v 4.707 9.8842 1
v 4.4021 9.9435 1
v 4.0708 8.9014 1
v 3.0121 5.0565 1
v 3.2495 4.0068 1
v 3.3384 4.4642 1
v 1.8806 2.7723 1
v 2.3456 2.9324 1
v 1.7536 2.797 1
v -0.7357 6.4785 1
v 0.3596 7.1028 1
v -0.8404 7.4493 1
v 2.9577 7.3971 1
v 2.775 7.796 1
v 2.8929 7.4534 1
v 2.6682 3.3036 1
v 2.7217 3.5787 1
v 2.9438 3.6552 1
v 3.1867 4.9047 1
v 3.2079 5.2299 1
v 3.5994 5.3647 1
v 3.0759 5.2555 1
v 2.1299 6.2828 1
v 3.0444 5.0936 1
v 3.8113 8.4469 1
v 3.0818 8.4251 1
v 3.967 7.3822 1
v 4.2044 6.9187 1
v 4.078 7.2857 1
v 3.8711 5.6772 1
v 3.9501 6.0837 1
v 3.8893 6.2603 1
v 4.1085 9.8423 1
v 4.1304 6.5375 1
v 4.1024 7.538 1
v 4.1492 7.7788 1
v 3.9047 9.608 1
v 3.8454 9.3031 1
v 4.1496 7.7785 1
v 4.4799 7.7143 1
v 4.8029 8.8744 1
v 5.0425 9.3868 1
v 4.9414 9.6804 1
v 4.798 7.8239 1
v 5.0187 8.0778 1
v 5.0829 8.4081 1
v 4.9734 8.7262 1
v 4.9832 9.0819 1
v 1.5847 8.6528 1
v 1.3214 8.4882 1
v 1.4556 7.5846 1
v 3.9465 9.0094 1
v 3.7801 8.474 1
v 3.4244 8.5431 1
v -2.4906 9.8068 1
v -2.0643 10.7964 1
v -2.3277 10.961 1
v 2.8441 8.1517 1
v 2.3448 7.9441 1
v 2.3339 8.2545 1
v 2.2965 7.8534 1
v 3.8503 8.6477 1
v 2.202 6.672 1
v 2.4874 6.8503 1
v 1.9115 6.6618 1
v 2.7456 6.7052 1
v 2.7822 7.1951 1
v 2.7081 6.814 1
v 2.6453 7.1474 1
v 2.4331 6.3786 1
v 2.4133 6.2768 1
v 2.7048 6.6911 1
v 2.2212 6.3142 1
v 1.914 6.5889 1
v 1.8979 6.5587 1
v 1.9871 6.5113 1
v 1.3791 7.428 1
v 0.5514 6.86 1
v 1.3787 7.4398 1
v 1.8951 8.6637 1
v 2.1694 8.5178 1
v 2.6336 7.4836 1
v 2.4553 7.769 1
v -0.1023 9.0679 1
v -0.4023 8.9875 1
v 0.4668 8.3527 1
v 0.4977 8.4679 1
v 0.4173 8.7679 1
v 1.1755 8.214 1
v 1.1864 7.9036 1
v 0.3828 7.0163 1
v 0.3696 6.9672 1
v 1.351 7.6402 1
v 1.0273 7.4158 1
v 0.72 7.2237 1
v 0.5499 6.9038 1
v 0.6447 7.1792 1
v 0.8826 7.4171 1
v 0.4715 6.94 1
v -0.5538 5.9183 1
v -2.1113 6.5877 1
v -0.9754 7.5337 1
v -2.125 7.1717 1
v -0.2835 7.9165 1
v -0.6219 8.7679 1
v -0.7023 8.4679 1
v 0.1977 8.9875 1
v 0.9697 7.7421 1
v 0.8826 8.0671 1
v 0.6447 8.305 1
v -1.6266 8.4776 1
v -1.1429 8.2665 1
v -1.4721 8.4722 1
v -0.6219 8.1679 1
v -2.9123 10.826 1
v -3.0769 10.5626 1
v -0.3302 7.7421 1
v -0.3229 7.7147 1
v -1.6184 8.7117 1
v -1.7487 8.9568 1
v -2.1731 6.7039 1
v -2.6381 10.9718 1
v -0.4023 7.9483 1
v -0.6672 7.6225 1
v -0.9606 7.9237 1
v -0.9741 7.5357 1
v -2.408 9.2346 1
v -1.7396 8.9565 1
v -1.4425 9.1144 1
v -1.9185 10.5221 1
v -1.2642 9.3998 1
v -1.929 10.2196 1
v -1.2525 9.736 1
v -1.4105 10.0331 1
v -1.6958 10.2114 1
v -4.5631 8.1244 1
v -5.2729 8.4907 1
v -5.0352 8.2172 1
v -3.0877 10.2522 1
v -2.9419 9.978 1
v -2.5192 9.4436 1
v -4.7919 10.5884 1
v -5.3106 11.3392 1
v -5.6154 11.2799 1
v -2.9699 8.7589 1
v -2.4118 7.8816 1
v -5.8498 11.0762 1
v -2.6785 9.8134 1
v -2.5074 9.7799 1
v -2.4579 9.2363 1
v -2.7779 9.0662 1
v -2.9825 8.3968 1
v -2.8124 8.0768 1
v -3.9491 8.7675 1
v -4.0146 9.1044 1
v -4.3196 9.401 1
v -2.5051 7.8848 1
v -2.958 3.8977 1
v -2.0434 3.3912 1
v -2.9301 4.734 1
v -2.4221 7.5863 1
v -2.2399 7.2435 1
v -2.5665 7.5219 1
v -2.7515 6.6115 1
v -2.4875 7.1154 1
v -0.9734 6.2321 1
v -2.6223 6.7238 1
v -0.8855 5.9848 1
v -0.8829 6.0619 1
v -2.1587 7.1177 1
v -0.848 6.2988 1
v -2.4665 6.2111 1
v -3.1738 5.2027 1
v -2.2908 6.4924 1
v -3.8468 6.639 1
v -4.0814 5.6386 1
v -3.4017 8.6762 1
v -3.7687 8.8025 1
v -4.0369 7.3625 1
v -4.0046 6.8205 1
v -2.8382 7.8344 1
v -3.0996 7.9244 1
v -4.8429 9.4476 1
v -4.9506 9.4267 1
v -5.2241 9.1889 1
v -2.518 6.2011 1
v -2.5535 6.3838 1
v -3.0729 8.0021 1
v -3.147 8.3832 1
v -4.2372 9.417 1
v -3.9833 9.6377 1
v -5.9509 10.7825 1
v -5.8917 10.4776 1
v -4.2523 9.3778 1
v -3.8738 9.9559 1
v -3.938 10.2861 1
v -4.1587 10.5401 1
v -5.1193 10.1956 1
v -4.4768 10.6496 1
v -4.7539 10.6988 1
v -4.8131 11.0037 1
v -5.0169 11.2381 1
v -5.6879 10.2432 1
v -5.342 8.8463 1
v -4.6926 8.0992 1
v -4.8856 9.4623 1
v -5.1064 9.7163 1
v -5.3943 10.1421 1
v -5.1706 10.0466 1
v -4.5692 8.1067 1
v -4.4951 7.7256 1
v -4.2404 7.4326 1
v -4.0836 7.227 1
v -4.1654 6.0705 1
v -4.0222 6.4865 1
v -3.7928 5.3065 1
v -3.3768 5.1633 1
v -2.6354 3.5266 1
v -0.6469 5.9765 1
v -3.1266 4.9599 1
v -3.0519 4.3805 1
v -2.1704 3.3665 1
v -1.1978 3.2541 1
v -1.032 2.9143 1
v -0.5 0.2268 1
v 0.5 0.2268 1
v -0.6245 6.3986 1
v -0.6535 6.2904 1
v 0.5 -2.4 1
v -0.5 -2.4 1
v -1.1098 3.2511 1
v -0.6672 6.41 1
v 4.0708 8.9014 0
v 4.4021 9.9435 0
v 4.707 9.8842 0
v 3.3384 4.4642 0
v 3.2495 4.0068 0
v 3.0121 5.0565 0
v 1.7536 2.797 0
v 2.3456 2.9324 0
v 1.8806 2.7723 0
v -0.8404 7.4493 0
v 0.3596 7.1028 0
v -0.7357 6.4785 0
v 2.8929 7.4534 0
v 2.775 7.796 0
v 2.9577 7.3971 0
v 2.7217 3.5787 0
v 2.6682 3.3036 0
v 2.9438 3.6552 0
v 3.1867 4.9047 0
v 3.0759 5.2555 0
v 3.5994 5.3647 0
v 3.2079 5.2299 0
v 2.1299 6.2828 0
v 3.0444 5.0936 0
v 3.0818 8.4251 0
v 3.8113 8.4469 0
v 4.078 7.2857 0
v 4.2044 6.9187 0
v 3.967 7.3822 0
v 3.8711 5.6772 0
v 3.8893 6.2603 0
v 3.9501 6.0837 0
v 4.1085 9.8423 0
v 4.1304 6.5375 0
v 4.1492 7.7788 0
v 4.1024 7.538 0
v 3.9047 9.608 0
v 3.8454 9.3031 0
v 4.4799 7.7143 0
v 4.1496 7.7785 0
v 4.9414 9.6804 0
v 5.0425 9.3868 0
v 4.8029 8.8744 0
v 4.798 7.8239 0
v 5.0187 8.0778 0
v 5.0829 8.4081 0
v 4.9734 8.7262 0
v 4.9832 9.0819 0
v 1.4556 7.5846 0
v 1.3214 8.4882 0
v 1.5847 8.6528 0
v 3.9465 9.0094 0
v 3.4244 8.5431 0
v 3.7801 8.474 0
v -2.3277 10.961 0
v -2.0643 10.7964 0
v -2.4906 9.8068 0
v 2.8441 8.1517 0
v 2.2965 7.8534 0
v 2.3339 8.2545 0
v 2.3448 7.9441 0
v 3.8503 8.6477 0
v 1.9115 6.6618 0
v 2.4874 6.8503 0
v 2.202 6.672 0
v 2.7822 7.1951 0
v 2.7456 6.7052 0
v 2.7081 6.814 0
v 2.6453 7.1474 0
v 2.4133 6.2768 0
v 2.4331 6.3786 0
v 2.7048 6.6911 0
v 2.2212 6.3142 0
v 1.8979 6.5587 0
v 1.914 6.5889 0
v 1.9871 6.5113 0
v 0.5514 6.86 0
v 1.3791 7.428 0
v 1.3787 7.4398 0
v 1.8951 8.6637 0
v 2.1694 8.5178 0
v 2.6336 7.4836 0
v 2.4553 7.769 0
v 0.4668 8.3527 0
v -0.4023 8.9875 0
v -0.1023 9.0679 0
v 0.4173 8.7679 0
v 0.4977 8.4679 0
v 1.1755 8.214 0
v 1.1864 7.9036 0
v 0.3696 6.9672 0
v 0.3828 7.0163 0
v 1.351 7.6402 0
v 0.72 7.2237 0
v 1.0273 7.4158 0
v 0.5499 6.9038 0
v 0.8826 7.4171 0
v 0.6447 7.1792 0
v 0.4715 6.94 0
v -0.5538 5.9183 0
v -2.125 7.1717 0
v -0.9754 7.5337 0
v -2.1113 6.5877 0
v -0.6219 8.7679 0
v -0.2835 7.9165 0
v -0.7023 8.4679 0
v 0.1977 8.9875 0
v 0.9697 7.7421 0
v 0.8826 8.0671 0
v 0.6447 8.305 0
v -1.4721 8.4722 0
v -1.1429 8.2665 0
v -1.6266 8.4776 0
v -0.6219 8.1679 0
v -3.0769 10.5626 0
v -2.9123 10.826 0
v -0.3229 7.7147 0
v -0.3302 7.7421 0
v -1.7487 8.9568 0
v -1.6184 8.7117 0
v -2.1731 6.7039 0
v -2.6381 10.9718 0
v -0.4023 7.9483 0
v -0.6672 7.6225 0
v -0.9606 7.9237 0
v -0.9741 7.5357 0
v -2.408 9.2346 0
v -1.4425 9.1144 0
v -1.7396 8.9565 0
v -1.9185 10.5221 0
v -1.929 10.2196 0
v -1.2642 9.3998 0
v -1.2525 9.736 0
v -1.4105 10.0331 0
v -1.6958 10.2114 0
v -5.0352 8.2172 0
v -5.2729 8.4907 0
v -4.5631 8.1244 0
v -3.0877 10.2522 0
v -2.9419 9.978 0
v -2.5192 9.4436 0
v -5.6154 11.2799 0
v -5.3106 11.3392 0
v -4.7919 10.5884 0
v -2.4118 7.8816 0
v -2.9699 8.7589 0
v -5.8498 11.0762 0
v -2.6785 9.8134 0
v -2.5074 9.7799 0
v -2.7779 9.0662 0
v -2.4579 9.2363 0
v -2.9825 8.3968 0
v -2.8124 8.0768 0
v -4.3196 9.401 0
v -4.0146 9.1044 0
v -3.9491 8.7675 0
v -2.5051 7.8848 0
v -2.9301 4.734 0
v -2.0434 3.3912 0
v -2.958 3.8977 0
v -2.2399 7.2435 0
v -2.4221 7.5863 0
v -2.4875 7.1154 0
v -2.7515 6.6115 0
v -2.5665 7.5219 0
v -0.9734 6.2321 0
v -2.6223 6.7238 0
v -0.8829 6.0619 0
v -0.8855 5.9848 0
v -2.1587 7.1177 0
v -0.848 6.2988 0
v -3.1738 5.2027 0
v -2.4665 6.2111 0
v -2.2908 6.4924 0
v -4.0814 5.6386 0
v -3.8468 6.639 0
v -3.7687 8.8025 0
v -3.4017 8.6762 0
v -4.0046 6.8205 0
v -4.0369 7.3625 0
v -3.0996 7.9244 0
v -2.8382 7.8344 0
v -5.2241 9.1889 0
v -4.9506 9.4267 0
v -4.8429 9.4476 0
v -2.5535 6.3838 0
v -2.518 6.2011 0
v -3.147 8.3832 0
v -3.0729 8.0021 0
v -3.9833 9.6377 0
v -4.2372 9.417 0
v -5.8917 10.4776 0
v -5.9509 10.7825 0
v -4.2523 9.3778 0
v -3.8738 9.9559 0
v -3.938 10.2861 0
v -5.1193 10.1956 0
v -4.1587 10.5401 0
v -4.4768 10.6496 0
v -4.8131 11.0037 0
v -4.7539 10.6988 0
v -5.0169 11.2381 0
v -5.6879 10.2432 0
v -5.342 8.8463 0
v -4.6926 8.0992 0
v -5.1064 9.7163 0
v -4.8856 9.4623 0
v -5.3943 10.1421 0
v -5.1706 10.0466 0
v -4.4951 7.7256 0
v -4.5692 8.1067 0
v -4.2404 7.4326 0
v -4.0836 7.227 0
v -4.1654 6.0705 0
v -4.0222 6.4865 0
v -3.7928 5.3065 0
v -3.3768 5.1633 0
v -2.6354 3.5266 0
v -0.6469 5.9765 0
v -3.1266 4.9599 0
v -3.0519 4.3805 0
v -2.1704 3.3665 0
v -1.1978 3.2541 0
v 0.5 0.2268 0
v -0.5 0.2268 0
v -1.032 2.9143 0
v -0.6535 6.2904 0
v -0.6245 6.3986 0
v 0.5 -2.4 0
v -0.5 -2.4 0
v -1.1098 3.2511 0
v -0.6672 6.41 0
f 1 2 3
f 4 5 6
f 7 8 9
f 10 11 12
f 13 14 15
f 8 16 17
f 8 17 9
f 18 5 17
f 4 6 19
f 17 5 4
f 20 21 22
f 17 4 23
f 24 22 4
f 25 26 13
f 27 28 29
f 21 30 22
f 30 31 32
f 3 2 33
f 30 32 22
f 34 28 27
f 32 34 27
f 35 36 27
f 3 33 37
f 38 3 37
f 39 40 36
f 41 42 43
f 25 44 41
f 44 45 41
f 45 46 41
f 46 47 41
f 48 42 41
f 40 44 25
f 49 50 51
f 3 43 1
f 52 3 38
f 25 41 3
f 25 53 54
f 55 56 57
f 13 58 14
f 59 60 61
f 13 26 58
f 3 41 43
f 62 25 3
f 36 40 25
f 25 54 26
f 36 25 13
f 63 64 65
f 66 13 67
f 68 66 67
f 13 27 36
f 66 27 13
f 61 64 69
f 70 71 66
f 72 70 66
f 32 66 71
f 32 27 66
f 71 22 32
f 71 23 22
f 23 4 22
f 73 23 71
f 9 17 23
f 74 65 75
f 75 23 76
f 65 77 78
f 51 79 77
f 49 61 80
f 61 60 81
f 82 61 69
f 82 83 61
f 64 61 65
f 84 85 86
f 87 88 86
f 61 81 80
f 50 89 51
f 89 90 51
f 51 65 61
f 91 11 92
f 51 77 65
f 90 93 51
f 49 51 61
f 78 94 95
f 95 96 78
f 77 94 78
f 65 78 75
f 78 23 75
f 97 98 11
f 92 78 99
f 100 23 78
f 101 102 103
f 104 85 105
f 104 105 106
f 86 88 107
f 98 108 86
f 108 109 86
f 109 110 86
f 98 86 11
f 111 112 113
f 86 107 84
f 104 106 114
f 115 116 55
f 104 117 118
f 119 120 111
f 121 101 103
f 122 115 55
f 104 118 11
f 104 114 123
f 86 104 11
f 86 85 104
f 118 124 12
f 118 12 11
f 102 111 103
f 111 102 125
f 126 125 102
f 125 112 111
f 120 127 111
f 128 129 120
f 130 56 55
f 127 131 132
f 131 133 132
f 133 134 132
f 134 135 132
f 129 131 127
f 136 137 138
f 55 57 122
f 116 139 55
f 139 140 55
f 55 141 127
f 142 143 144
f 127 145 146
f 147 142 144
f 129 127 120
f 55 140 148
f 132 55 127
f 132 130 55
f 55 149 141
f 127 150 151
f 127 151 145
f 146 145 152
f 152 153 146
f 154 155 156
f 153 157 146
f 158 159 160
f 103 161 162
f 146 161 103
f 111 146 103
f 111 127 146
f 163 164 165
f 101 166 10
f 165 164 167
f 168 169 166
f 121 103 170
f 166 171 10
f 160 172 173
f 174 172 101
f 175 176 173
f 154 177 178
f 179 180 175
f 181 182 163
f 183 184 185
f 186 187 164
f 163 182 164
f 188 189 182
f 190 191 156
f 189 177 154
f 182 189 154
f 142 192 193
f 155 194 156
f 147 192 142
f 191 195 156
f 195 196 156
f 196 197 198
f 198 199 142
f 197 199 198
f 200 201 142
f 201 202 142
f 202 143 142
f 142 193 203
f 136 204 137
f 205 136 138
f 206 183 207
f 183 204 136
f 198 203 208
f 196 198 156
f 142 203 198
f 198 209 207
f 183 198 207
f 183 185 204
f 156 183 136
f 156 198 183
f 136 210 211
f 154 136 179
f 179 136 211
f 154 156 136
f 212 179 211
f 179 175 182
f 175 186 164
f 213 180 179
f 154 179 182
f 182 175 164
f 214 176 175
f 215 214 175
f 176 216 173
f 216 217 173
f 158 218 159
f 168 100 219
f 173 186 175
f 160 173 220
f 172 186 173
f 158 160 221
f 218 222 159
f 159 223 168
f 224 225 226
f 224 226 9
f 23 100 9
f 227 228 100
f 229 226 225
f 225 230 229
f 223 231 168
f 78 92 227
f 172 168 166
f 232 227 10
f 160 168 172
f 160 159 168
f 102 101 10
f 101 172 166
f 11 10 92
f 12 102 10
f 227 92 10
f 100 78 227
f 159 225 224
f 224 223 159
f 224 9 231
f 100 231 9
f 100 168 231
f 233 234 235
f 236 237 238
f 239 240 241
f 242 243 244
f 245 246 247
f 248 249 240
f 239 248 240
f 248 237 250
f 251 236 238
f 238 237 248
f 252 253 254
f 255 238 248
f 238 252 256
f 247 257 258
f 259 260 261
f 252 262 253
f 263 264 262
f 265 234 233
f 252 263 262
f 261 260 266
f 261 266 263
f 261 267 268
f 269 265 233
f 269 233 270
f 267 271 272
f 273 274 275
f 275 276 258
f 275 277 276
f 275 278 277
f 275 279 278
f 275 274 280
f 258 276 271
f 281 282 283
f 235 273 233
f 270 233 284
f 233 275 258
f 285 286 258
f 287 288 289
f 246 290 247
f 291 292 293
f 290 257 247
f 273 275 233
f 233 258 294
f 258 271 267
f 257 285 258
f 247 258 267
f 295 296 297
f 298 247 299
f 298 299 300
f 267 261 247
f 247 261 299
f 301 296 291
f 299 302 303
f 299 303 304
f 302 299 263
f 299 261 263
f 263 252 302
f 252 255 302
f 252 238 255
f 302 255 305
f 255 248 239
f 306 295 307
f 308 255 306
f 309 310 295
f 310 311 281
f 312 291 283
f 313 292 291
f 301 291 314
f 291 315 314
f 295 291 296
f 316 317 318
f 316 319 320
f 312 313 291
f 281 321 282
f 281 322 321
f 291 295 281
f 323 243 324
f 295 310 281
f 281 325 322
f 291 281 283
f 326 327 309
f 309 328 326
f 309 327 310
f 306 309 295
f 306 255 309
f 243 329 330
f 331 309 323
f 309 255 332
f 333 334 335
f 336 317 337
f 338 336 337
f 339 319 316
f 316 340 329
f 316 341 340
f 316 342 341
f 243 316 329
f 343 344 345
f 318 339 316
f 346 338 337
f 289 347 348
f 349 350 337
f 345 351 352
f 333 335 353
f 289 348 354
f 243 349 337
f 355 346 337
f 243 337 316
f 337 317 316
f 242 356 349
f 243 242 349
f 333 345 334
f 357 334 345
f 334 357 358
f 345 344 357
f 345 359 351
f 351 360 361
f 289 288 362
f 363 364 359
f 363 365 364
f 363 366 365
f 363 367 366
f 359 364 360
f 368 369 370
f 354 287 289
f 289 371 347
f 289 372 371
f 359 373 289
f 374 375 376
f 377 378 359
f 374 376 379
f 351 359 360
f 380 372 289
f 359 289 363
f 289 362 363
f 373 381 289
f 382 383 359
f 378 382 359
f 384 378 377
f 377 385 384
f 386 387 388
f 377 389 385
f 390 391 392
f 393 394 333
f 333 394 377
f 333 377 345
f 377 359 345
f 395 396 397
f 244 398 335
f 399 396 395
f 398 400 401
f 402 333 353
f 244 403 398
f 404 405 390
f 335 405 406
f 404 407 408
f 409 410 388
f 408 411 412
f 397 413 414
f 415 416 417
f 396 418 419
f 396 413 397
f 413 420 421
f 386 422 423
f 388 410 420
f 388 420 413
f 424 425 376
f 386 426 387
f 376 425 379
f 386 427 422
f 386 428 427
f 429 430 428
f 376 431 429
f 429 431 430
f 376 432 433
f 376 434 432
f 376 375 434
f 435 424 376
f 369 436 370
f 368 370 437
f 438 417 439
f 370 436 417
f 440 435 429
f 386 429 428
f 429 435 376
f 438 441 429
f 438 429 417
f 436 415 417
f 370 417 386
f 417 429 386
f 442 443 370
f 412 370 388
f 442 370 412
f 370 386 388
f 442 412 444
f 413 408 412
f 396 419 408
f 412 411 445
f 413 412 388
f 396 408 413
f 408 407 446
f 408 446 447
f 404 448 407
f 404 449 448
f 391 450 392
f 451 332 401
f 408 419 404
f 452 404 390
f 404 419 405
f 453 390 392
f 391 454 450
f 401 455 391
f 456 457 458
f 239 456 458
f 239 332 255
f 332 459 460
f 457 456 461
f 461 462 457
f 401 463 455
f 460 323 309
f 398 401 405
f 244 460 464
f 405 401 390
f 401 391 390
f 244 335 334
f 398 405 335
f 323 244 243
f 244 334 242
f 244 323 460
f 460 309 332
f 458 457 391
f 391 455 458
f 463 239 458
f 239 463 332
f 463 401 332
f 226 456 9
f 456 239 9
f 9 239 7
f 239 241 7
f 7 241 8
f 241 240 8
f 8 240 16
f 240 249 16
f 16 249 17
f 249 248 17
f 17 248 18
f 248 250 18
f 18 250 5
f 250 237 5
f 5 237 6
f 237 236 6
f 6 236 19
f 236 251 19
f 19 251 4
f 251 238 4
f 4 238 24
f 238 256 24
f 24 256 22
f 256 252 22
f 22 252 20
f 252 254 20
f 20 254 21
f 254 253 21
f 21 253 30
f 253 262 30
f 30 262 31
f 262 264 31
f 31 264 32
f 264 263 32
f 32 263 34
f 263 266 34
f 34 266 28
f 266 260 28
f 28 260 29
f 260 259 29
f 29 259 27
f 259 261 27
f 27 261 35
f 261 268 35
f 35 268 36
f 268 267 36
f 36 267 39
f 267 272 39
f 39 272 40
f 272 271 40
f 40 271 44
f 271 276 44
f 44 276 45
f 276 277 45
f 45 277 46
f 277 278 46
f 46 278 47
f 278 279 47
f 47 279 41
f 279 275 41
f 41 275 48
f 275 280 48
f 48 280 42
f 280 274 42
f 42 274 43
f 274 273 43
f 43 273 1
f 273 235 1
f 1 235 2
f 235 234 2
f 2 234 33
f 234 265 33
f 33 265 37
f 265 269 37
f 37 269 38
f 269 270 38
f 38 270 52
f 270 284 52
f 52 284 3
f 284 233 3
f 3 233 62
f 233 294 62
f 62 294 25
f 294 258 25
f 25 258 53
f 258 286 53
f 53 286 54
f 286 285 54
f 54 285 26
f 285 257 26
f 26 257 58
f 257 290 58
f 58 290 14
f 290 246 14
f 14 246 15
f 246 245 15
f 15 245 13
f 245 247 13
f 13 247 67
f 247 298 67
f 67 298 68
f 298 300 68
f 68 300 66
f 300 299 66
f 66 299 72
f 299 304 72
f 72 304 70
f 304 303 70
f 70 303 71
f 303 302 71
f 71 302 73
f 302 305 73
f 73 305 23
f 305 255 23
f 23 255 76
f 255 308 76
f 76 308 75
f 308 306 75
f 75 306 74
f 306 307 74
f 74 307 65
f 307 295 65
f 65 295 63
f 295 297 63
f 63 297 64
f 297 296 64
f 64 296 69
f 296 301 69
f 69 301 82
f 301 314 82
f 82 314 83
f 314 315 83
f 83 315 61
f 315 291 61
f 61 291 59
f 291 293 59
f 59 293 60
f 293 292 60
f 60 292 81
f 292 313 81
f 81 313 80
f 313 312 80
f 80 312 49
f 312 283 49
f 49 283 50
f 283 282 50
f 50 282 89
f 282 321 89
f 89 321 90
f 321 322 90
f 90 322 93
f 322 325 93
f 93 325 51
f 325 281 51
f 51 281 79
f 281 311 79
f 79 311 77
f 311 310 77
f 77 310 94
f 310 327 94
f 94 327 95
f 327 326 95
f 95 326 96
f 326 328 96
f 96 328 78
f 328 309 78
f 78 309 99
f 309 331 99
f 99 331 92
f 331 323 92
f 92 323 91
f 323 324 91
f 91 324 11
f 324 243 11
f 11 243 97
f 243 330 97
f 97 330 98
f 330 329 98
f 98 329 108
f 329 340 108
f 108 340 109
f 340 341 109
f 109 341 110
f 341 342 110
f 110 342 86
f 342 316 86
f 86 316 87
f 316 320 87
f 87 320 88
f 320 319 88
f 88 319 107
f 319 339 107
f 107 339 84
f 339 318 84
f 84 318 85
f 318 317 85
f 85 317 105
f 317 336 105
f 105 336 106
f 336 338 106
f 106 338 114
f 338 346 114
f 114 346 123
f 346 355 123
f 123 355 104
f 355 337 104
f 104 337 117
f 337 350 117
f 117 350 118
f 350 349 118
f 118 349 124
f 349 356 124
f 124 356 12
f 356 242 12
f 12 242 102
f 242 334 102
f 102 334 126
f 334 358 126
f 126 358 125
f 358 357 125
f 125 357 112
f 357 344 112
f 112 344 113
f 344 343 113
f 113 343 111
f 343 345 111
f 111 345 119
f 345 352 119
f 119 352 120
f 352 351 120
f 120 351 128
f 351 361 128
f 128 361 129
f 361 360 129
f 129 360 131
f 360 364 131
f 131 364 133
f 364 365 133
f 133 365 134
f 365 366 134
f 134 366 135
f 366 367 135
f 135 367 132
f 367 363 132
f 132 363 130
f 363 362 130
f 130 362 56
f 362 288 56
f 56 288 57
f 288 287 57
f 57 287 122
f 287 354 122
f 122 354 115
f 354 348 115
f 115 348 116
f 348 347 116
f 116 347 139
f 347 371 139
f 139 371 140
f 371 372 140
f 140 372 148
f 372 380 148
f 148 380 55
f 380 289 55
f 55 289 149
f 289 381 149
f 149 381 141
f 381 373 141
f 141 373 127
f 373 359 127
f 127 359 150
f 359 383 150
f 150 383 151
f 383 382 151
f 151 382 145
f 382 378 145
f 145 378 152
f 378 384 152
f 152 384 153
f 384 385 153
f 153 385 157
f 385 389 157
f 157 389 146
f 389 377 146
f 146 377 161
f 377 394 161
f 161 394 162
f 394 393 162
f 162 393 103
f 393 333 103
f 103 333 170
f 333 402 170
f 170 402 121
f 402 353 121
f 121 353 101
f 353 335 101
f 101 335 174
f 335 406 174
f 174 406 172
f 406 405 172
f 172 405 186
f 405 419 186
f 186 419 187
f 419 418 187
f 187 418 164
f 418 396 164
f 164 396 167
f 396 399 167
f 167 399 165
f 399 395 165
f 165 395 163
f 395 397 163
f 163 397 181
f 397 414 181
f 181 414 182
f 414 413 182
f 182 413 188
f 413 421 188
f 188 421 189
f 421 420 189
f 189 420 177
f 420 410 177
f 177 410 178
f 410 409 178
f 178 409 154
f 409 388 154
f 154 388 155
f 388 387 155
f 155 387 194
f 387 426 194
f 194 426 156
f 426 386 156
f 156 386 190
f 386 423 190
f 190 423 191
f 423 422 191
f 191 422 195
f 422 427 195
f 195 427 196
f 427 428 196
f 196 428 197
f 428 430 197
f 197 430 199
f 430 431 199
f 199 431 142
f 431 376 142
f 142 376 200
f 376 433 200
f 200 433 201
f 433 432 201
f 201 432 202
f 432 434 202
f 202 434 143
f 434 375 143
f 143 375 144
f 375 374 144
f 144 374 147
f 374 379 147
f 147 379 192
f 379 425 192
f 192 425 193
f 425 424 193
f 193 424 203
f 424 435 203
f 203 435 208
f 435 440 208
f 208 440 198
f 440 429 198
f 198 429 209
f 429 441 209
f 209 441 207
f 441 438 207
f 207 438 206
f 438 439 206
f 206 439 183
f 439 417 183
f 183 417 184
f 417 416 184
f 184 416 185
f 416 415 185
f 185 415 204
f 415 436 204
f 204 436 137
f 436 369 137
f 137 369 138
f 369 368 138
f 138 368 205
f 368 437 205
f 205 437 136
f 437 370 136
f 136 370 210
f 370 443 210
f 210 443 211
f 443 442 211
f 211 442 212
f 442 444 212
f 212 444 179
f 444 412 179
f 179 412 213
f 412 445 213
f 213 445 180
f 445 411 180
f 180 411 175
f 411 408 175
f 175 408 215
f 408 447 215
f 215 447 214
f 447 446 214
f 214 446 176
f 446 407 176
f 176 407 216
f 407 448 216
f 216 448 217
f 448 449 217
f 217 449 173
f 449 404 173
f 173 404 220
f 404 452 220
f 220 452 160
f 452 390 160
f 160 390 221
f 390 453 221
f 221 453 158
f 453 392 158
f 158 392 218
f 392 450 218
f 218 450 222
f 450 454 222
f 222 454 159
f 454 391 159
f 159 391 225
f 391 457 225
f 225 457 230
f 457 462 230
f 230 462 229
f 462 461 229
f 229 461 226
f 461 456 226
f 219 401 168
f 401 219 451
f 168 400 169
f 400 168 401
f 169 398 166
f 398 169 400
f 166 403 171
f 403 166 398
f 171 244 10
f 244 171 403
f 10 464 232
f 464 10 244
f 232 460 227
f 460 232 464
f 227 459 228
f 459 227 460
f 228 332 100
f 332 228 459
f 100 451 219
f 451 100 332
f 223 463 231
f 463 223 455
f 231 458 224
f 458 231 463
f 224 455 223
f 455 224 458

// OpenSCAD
// Pampas_Spray.stl  -  Store Versile room frame (Rev C)
// Quantity: 1   Filament: Bone / ivory white
// Print: layer 0.12 mm, infill 100%, 2 walls, brim 0 mm, NO supports
// Orientation: back  (lying on its back, front face up)
// Notes: Flat, 1.0 mm. Peg goes into the donut vase neck.
// The library draws parts with their front toward +Y; mirror([0,1,0]) makes the real
// part face the viewer correctly (see build.py). Edit dimensions in versile_parts.scad.
use <../versile_parts.scad>

rotate([-90, 0, 0]) mirror([0, 1, 0]) pampas_spray();
